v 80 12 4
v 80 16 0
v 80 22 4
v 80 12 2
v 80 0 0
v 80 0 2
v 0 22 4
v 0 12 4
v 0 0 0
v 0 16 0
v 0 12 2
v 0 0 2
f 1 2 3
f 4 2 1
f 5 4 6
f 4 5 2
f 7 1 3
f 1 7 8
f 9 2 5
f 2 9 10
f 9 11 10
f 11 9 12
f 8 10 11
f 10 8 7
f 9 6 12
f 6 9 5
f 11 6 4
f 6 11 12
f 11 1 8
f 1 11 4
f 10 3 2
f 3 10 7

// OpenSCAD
// file: import/smow_lib.scad
module triangle(x, y, z) {
    polyhedron(
        points=[[0,0,0],[x,0,0],[x,y,0],[0,y,0],[0,y,z],[x,y,z]],
        faces=[[0,1,2,3],[5,4,3,2],[0,4,5,1],[0,3,4],[5,2,1]]
    );
}

module mirror_copy(v) {
	children();
	mirror(v) children();
}
// main file
include <import/smow_lib.scad>

height = 4;
width = 80;
depth = 22;

cut_depth = 12;
cut_height = 2;

trim_depth = 6;

difference() {
	cube([width, depth, height]);
	#translate([0, 0, height-cut_height]) cube([width, cut_depth, cut_height]);
	translate([0, depth-trim_depth, 0]) triangle(width, trim_depth, height);
}
